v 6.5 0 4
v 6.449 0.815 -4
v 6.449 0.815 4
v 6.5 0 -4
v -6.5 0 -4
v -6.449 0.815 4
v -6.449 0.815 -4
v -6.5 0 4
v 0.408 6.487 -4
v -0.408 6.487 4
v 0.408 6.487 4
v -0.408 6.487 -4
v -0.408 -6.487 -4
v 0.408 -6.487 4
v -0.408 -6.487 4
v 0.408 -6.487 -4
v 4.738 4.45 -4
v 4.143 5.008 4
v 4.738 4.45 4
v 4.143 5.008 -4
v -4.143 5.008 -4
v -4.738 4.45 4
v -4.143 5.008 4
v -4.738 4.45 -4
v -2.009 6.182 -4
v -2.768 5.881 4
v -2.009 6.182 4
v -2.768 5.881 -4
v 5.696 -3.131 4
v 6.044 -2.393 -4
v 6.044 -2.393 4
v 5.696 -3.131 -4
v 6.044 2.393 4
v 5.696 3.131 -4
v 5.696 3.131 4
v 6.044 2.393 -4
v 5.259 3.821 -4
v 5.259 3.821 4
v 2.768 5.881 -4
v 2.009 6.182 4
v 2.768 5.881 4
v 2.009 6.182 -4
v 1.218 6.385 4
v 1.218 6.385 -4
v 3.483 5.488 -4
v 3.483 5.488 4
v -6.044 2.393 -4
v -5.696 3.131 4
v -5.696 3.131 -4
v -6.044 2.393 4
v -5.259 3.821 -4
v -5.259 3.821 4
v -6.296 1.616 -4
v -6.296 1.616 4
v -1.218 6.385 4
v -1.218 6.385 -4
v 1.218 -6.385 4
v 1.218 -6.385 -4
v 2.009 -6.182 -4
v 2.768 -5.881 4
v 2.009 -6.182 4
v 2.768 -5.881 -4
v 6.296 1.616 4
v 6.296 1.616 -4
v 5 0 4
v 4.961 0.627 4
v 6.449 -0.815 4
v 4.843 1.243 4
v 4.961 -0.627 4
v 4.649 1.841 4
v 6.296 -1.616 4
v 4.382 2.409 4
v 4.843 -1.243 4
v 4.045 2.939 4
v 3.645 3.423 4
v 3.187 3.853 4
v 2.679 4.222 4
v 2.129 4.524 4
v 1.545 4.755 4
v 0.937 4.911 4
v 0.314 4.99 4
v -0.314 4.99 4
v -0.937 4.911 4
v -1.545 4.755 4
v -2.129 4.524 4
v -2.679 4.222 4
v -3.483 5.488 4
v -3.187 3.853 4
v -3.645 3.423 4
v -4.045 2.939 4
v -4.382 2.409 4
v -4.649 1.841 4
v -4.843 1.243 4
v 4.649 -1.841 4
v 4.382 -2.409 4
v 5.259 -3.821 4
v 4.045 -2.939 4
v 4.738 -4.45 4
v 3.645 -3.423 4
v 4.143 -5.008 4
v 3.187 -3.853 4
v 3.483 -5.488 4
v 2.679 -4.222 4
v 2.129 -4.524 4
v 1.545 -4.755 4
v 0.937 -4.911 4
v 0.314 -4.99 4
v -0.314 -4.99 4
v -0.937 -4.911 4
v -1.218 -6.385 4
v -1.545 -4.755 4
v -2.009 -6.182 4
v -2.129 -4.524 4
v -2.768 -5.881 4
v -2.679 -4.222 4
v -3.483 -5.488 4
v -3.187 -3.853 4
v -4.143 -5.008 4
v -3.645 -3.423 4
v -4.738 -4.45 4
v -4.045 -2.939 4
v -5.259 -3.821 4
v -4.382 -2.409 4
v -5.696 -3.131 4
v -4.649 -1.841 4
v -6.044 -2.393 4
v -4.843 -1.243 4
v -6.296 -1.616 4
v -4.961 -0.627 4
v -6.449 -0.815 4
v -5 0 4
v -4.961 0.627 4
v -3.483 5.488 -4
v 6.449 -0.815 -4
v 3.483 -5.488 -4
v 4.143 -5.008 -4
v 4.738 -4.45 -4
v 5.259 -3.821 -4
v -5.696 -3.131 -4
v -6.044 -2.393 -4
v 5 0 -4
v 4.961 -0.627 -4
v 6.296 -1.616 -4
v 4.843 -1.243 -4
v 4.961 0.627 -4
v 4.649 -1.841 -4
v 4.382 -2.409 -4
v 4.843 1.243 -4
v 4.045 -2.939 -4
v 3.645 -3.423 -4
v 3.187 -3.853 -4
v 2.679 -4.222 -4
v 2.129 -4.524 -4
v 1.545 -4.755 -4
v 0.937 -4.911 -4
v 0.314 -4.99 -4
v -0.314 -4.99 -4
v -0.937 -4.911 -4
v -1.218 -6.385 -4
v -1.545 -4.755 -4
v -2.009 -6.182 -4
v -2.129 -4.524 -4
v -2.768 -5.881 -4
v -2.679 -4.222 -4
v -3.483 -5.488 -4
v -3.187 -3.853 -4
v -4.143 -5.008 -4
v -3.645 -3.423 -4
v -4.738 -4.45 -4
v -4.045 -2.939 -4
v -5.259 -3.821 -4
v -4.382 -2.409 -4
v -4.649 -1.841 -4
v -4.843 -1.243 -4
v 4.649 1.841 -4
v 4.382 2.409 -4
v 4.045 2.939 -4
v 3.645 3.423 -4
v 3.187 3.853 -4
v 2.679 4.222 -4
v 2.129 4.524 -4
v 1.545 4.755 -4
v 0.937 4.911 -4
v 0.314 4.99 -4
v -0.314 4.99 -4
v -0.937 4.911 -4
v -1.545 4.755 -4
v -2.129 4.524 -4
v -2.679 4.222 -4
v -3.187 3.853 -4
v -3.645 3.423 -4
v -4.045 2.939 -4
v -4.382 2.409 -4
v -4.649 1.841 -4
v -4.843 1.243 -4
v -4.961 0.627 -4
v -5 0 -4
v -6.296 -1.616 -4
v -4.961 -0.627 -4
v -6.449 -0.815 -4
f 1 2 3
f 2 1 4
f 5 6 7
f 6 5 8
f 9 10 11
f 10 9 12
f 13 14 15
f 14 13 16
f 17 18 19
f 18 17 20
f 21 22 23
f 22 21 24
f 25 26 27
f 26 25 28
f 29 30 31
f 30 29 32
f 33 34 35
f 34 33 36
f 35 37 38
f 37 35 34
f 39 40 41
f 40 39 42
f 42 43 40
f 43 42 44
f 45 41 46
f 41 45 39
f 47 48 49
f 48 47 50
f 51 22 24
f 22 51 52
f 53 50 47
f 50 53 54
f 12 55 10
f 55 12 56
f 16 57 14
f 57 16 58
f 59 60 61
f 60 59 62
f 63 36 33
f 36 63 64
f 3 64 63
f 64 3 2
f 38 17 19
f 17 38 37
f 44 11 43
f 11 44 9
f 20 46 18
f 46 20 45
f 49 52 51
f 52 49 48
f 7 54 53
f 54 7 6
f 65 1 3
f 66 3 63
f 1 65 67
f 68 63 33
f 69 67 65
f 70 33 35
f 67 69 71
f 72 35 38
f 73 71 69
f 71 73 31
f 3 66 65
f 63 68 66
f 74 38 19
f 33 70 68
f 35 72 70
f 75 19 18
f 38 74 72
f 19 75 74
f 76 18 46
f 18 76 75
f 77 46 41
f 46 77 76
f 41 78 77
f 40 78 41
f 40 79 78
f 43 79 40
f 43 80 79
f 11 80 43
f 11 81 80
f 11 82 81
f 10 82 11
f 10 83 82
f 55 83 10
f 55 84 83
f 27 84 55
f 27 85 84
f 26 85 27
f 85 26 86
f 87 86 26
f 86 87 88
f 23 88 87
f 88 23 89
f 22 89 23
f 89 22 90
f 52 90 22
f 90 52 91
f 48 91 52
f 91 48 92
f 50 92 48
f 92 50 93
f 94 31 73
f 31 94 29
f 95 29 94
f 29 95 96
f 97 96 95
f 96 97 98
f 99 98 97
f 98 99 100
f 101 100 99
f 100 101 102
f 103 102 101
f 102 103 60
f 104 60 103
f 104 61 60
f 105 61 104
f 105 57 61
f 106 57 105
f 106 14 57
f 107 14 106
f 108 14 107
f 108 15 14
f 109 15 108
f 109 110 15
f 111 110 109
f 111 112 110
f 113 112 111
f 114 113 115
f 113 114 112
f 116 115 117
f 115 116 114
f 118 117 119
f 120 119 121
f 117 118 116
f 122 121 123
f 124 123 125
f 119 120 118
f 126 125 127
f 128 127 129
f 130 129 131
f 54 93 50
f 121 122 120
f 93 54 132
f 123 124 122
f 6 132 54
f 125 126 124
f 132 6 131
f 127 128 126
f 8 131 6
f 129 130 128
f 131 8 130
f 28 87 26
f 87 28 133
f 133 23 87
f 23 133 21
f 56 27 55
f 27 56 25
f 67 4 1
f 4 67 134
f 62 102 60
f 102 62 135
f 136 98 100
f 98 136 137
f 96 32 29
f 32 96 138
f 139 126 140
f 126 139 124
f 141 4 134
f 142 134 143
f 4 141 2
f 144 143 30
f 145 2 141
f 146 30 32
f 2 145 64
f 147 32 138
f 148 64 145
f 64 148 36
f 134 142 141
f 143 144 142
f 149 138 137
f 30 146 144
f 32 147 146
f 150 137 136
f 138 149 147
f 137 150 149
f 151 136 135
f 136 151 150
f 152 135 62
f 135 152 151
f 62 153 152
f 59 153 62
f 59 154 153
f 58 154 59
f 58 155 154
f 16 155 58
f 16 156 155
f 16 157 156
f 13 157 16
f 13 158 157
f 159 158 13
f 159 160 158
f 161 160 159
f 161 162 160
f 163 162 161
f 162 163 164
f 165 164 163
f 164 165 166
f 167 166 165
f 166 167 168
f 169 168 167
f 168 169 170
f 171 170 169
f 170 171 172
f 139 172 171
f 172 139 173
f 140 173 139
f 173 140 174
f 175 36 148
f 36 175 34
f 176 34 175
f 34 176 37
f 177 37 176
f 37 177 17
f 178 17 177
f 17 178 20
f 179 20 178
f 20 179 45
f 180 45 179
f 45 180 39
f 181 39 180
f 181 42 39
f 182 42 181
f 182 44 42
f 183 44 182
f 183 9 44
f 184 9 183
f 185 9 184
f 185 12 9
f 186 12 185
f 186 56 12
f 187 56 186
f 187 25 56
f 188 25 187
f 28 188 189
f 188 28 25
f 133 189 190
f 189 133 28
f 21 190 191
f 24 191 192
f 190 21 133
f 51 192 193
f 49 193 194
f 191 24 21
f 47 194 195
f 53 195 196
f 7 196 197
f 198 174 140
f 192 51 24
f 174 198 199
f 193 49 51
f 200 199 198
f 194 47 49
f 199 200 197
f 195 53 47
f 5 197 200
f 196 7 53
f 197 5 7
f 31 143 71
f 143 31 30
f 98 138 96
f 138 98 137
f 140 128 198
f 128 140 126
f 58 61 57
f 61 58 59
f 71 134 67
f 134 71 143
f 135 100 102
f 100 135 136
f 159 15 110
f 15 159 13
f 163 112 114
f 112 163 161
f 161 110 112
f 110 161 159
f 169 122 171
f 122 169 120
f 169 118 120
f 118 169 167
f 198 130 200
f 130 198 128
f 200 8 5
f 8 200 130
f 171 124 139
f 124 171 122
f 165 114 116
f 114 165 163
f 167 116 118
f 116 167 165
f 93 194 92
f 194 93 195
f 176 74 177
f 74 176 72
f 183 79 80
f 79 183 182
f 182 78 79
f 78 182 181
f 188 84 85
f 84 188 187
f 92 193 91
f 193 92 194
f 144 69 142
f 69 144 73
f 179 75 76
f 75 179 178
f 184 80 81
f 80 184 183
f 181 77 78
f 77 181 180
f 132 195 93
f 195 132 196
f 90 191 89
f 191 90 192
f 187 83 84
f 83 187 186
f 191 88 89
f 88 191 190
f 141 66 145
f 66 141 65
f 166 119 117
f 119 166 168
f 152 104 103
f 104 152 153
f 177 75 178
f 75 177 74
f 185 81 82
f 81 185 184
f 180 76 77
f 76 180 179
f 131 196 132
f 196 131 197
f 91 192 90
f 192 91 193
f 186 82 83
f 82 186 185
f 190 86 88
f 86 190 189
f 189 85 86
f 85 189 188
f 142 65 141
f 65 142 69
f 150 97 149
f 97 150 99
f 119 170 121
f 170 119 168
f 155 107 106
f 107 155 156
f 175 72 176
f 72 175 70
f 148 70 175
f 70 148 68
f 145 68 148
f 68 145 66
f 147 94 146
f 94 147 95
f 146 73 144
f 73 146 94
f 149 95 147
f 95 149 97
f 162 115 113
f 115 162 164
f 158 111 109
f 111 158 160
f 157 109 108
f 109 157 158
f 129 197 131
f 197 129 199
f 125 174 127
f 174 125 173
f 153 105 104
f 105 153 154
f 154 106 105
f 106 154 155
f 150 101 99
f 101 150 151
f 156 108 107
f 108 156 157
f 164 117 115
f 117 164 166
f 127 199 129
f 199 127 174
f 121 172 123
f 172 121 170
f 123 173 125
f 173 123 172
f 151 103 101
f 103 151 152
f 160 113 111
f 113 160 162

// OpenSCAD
$fn = 50;


difference() {
	union() {
		translate(v = [0, 0, -4.0000000000]) {
			cylinder(h = 8, r = 6.5000000000);
		}
	}
	union() {
		translate(v = [0, 0, -100.0000000000]) {
			cylinder(h = 200, r = 5);
		}
	}
}
